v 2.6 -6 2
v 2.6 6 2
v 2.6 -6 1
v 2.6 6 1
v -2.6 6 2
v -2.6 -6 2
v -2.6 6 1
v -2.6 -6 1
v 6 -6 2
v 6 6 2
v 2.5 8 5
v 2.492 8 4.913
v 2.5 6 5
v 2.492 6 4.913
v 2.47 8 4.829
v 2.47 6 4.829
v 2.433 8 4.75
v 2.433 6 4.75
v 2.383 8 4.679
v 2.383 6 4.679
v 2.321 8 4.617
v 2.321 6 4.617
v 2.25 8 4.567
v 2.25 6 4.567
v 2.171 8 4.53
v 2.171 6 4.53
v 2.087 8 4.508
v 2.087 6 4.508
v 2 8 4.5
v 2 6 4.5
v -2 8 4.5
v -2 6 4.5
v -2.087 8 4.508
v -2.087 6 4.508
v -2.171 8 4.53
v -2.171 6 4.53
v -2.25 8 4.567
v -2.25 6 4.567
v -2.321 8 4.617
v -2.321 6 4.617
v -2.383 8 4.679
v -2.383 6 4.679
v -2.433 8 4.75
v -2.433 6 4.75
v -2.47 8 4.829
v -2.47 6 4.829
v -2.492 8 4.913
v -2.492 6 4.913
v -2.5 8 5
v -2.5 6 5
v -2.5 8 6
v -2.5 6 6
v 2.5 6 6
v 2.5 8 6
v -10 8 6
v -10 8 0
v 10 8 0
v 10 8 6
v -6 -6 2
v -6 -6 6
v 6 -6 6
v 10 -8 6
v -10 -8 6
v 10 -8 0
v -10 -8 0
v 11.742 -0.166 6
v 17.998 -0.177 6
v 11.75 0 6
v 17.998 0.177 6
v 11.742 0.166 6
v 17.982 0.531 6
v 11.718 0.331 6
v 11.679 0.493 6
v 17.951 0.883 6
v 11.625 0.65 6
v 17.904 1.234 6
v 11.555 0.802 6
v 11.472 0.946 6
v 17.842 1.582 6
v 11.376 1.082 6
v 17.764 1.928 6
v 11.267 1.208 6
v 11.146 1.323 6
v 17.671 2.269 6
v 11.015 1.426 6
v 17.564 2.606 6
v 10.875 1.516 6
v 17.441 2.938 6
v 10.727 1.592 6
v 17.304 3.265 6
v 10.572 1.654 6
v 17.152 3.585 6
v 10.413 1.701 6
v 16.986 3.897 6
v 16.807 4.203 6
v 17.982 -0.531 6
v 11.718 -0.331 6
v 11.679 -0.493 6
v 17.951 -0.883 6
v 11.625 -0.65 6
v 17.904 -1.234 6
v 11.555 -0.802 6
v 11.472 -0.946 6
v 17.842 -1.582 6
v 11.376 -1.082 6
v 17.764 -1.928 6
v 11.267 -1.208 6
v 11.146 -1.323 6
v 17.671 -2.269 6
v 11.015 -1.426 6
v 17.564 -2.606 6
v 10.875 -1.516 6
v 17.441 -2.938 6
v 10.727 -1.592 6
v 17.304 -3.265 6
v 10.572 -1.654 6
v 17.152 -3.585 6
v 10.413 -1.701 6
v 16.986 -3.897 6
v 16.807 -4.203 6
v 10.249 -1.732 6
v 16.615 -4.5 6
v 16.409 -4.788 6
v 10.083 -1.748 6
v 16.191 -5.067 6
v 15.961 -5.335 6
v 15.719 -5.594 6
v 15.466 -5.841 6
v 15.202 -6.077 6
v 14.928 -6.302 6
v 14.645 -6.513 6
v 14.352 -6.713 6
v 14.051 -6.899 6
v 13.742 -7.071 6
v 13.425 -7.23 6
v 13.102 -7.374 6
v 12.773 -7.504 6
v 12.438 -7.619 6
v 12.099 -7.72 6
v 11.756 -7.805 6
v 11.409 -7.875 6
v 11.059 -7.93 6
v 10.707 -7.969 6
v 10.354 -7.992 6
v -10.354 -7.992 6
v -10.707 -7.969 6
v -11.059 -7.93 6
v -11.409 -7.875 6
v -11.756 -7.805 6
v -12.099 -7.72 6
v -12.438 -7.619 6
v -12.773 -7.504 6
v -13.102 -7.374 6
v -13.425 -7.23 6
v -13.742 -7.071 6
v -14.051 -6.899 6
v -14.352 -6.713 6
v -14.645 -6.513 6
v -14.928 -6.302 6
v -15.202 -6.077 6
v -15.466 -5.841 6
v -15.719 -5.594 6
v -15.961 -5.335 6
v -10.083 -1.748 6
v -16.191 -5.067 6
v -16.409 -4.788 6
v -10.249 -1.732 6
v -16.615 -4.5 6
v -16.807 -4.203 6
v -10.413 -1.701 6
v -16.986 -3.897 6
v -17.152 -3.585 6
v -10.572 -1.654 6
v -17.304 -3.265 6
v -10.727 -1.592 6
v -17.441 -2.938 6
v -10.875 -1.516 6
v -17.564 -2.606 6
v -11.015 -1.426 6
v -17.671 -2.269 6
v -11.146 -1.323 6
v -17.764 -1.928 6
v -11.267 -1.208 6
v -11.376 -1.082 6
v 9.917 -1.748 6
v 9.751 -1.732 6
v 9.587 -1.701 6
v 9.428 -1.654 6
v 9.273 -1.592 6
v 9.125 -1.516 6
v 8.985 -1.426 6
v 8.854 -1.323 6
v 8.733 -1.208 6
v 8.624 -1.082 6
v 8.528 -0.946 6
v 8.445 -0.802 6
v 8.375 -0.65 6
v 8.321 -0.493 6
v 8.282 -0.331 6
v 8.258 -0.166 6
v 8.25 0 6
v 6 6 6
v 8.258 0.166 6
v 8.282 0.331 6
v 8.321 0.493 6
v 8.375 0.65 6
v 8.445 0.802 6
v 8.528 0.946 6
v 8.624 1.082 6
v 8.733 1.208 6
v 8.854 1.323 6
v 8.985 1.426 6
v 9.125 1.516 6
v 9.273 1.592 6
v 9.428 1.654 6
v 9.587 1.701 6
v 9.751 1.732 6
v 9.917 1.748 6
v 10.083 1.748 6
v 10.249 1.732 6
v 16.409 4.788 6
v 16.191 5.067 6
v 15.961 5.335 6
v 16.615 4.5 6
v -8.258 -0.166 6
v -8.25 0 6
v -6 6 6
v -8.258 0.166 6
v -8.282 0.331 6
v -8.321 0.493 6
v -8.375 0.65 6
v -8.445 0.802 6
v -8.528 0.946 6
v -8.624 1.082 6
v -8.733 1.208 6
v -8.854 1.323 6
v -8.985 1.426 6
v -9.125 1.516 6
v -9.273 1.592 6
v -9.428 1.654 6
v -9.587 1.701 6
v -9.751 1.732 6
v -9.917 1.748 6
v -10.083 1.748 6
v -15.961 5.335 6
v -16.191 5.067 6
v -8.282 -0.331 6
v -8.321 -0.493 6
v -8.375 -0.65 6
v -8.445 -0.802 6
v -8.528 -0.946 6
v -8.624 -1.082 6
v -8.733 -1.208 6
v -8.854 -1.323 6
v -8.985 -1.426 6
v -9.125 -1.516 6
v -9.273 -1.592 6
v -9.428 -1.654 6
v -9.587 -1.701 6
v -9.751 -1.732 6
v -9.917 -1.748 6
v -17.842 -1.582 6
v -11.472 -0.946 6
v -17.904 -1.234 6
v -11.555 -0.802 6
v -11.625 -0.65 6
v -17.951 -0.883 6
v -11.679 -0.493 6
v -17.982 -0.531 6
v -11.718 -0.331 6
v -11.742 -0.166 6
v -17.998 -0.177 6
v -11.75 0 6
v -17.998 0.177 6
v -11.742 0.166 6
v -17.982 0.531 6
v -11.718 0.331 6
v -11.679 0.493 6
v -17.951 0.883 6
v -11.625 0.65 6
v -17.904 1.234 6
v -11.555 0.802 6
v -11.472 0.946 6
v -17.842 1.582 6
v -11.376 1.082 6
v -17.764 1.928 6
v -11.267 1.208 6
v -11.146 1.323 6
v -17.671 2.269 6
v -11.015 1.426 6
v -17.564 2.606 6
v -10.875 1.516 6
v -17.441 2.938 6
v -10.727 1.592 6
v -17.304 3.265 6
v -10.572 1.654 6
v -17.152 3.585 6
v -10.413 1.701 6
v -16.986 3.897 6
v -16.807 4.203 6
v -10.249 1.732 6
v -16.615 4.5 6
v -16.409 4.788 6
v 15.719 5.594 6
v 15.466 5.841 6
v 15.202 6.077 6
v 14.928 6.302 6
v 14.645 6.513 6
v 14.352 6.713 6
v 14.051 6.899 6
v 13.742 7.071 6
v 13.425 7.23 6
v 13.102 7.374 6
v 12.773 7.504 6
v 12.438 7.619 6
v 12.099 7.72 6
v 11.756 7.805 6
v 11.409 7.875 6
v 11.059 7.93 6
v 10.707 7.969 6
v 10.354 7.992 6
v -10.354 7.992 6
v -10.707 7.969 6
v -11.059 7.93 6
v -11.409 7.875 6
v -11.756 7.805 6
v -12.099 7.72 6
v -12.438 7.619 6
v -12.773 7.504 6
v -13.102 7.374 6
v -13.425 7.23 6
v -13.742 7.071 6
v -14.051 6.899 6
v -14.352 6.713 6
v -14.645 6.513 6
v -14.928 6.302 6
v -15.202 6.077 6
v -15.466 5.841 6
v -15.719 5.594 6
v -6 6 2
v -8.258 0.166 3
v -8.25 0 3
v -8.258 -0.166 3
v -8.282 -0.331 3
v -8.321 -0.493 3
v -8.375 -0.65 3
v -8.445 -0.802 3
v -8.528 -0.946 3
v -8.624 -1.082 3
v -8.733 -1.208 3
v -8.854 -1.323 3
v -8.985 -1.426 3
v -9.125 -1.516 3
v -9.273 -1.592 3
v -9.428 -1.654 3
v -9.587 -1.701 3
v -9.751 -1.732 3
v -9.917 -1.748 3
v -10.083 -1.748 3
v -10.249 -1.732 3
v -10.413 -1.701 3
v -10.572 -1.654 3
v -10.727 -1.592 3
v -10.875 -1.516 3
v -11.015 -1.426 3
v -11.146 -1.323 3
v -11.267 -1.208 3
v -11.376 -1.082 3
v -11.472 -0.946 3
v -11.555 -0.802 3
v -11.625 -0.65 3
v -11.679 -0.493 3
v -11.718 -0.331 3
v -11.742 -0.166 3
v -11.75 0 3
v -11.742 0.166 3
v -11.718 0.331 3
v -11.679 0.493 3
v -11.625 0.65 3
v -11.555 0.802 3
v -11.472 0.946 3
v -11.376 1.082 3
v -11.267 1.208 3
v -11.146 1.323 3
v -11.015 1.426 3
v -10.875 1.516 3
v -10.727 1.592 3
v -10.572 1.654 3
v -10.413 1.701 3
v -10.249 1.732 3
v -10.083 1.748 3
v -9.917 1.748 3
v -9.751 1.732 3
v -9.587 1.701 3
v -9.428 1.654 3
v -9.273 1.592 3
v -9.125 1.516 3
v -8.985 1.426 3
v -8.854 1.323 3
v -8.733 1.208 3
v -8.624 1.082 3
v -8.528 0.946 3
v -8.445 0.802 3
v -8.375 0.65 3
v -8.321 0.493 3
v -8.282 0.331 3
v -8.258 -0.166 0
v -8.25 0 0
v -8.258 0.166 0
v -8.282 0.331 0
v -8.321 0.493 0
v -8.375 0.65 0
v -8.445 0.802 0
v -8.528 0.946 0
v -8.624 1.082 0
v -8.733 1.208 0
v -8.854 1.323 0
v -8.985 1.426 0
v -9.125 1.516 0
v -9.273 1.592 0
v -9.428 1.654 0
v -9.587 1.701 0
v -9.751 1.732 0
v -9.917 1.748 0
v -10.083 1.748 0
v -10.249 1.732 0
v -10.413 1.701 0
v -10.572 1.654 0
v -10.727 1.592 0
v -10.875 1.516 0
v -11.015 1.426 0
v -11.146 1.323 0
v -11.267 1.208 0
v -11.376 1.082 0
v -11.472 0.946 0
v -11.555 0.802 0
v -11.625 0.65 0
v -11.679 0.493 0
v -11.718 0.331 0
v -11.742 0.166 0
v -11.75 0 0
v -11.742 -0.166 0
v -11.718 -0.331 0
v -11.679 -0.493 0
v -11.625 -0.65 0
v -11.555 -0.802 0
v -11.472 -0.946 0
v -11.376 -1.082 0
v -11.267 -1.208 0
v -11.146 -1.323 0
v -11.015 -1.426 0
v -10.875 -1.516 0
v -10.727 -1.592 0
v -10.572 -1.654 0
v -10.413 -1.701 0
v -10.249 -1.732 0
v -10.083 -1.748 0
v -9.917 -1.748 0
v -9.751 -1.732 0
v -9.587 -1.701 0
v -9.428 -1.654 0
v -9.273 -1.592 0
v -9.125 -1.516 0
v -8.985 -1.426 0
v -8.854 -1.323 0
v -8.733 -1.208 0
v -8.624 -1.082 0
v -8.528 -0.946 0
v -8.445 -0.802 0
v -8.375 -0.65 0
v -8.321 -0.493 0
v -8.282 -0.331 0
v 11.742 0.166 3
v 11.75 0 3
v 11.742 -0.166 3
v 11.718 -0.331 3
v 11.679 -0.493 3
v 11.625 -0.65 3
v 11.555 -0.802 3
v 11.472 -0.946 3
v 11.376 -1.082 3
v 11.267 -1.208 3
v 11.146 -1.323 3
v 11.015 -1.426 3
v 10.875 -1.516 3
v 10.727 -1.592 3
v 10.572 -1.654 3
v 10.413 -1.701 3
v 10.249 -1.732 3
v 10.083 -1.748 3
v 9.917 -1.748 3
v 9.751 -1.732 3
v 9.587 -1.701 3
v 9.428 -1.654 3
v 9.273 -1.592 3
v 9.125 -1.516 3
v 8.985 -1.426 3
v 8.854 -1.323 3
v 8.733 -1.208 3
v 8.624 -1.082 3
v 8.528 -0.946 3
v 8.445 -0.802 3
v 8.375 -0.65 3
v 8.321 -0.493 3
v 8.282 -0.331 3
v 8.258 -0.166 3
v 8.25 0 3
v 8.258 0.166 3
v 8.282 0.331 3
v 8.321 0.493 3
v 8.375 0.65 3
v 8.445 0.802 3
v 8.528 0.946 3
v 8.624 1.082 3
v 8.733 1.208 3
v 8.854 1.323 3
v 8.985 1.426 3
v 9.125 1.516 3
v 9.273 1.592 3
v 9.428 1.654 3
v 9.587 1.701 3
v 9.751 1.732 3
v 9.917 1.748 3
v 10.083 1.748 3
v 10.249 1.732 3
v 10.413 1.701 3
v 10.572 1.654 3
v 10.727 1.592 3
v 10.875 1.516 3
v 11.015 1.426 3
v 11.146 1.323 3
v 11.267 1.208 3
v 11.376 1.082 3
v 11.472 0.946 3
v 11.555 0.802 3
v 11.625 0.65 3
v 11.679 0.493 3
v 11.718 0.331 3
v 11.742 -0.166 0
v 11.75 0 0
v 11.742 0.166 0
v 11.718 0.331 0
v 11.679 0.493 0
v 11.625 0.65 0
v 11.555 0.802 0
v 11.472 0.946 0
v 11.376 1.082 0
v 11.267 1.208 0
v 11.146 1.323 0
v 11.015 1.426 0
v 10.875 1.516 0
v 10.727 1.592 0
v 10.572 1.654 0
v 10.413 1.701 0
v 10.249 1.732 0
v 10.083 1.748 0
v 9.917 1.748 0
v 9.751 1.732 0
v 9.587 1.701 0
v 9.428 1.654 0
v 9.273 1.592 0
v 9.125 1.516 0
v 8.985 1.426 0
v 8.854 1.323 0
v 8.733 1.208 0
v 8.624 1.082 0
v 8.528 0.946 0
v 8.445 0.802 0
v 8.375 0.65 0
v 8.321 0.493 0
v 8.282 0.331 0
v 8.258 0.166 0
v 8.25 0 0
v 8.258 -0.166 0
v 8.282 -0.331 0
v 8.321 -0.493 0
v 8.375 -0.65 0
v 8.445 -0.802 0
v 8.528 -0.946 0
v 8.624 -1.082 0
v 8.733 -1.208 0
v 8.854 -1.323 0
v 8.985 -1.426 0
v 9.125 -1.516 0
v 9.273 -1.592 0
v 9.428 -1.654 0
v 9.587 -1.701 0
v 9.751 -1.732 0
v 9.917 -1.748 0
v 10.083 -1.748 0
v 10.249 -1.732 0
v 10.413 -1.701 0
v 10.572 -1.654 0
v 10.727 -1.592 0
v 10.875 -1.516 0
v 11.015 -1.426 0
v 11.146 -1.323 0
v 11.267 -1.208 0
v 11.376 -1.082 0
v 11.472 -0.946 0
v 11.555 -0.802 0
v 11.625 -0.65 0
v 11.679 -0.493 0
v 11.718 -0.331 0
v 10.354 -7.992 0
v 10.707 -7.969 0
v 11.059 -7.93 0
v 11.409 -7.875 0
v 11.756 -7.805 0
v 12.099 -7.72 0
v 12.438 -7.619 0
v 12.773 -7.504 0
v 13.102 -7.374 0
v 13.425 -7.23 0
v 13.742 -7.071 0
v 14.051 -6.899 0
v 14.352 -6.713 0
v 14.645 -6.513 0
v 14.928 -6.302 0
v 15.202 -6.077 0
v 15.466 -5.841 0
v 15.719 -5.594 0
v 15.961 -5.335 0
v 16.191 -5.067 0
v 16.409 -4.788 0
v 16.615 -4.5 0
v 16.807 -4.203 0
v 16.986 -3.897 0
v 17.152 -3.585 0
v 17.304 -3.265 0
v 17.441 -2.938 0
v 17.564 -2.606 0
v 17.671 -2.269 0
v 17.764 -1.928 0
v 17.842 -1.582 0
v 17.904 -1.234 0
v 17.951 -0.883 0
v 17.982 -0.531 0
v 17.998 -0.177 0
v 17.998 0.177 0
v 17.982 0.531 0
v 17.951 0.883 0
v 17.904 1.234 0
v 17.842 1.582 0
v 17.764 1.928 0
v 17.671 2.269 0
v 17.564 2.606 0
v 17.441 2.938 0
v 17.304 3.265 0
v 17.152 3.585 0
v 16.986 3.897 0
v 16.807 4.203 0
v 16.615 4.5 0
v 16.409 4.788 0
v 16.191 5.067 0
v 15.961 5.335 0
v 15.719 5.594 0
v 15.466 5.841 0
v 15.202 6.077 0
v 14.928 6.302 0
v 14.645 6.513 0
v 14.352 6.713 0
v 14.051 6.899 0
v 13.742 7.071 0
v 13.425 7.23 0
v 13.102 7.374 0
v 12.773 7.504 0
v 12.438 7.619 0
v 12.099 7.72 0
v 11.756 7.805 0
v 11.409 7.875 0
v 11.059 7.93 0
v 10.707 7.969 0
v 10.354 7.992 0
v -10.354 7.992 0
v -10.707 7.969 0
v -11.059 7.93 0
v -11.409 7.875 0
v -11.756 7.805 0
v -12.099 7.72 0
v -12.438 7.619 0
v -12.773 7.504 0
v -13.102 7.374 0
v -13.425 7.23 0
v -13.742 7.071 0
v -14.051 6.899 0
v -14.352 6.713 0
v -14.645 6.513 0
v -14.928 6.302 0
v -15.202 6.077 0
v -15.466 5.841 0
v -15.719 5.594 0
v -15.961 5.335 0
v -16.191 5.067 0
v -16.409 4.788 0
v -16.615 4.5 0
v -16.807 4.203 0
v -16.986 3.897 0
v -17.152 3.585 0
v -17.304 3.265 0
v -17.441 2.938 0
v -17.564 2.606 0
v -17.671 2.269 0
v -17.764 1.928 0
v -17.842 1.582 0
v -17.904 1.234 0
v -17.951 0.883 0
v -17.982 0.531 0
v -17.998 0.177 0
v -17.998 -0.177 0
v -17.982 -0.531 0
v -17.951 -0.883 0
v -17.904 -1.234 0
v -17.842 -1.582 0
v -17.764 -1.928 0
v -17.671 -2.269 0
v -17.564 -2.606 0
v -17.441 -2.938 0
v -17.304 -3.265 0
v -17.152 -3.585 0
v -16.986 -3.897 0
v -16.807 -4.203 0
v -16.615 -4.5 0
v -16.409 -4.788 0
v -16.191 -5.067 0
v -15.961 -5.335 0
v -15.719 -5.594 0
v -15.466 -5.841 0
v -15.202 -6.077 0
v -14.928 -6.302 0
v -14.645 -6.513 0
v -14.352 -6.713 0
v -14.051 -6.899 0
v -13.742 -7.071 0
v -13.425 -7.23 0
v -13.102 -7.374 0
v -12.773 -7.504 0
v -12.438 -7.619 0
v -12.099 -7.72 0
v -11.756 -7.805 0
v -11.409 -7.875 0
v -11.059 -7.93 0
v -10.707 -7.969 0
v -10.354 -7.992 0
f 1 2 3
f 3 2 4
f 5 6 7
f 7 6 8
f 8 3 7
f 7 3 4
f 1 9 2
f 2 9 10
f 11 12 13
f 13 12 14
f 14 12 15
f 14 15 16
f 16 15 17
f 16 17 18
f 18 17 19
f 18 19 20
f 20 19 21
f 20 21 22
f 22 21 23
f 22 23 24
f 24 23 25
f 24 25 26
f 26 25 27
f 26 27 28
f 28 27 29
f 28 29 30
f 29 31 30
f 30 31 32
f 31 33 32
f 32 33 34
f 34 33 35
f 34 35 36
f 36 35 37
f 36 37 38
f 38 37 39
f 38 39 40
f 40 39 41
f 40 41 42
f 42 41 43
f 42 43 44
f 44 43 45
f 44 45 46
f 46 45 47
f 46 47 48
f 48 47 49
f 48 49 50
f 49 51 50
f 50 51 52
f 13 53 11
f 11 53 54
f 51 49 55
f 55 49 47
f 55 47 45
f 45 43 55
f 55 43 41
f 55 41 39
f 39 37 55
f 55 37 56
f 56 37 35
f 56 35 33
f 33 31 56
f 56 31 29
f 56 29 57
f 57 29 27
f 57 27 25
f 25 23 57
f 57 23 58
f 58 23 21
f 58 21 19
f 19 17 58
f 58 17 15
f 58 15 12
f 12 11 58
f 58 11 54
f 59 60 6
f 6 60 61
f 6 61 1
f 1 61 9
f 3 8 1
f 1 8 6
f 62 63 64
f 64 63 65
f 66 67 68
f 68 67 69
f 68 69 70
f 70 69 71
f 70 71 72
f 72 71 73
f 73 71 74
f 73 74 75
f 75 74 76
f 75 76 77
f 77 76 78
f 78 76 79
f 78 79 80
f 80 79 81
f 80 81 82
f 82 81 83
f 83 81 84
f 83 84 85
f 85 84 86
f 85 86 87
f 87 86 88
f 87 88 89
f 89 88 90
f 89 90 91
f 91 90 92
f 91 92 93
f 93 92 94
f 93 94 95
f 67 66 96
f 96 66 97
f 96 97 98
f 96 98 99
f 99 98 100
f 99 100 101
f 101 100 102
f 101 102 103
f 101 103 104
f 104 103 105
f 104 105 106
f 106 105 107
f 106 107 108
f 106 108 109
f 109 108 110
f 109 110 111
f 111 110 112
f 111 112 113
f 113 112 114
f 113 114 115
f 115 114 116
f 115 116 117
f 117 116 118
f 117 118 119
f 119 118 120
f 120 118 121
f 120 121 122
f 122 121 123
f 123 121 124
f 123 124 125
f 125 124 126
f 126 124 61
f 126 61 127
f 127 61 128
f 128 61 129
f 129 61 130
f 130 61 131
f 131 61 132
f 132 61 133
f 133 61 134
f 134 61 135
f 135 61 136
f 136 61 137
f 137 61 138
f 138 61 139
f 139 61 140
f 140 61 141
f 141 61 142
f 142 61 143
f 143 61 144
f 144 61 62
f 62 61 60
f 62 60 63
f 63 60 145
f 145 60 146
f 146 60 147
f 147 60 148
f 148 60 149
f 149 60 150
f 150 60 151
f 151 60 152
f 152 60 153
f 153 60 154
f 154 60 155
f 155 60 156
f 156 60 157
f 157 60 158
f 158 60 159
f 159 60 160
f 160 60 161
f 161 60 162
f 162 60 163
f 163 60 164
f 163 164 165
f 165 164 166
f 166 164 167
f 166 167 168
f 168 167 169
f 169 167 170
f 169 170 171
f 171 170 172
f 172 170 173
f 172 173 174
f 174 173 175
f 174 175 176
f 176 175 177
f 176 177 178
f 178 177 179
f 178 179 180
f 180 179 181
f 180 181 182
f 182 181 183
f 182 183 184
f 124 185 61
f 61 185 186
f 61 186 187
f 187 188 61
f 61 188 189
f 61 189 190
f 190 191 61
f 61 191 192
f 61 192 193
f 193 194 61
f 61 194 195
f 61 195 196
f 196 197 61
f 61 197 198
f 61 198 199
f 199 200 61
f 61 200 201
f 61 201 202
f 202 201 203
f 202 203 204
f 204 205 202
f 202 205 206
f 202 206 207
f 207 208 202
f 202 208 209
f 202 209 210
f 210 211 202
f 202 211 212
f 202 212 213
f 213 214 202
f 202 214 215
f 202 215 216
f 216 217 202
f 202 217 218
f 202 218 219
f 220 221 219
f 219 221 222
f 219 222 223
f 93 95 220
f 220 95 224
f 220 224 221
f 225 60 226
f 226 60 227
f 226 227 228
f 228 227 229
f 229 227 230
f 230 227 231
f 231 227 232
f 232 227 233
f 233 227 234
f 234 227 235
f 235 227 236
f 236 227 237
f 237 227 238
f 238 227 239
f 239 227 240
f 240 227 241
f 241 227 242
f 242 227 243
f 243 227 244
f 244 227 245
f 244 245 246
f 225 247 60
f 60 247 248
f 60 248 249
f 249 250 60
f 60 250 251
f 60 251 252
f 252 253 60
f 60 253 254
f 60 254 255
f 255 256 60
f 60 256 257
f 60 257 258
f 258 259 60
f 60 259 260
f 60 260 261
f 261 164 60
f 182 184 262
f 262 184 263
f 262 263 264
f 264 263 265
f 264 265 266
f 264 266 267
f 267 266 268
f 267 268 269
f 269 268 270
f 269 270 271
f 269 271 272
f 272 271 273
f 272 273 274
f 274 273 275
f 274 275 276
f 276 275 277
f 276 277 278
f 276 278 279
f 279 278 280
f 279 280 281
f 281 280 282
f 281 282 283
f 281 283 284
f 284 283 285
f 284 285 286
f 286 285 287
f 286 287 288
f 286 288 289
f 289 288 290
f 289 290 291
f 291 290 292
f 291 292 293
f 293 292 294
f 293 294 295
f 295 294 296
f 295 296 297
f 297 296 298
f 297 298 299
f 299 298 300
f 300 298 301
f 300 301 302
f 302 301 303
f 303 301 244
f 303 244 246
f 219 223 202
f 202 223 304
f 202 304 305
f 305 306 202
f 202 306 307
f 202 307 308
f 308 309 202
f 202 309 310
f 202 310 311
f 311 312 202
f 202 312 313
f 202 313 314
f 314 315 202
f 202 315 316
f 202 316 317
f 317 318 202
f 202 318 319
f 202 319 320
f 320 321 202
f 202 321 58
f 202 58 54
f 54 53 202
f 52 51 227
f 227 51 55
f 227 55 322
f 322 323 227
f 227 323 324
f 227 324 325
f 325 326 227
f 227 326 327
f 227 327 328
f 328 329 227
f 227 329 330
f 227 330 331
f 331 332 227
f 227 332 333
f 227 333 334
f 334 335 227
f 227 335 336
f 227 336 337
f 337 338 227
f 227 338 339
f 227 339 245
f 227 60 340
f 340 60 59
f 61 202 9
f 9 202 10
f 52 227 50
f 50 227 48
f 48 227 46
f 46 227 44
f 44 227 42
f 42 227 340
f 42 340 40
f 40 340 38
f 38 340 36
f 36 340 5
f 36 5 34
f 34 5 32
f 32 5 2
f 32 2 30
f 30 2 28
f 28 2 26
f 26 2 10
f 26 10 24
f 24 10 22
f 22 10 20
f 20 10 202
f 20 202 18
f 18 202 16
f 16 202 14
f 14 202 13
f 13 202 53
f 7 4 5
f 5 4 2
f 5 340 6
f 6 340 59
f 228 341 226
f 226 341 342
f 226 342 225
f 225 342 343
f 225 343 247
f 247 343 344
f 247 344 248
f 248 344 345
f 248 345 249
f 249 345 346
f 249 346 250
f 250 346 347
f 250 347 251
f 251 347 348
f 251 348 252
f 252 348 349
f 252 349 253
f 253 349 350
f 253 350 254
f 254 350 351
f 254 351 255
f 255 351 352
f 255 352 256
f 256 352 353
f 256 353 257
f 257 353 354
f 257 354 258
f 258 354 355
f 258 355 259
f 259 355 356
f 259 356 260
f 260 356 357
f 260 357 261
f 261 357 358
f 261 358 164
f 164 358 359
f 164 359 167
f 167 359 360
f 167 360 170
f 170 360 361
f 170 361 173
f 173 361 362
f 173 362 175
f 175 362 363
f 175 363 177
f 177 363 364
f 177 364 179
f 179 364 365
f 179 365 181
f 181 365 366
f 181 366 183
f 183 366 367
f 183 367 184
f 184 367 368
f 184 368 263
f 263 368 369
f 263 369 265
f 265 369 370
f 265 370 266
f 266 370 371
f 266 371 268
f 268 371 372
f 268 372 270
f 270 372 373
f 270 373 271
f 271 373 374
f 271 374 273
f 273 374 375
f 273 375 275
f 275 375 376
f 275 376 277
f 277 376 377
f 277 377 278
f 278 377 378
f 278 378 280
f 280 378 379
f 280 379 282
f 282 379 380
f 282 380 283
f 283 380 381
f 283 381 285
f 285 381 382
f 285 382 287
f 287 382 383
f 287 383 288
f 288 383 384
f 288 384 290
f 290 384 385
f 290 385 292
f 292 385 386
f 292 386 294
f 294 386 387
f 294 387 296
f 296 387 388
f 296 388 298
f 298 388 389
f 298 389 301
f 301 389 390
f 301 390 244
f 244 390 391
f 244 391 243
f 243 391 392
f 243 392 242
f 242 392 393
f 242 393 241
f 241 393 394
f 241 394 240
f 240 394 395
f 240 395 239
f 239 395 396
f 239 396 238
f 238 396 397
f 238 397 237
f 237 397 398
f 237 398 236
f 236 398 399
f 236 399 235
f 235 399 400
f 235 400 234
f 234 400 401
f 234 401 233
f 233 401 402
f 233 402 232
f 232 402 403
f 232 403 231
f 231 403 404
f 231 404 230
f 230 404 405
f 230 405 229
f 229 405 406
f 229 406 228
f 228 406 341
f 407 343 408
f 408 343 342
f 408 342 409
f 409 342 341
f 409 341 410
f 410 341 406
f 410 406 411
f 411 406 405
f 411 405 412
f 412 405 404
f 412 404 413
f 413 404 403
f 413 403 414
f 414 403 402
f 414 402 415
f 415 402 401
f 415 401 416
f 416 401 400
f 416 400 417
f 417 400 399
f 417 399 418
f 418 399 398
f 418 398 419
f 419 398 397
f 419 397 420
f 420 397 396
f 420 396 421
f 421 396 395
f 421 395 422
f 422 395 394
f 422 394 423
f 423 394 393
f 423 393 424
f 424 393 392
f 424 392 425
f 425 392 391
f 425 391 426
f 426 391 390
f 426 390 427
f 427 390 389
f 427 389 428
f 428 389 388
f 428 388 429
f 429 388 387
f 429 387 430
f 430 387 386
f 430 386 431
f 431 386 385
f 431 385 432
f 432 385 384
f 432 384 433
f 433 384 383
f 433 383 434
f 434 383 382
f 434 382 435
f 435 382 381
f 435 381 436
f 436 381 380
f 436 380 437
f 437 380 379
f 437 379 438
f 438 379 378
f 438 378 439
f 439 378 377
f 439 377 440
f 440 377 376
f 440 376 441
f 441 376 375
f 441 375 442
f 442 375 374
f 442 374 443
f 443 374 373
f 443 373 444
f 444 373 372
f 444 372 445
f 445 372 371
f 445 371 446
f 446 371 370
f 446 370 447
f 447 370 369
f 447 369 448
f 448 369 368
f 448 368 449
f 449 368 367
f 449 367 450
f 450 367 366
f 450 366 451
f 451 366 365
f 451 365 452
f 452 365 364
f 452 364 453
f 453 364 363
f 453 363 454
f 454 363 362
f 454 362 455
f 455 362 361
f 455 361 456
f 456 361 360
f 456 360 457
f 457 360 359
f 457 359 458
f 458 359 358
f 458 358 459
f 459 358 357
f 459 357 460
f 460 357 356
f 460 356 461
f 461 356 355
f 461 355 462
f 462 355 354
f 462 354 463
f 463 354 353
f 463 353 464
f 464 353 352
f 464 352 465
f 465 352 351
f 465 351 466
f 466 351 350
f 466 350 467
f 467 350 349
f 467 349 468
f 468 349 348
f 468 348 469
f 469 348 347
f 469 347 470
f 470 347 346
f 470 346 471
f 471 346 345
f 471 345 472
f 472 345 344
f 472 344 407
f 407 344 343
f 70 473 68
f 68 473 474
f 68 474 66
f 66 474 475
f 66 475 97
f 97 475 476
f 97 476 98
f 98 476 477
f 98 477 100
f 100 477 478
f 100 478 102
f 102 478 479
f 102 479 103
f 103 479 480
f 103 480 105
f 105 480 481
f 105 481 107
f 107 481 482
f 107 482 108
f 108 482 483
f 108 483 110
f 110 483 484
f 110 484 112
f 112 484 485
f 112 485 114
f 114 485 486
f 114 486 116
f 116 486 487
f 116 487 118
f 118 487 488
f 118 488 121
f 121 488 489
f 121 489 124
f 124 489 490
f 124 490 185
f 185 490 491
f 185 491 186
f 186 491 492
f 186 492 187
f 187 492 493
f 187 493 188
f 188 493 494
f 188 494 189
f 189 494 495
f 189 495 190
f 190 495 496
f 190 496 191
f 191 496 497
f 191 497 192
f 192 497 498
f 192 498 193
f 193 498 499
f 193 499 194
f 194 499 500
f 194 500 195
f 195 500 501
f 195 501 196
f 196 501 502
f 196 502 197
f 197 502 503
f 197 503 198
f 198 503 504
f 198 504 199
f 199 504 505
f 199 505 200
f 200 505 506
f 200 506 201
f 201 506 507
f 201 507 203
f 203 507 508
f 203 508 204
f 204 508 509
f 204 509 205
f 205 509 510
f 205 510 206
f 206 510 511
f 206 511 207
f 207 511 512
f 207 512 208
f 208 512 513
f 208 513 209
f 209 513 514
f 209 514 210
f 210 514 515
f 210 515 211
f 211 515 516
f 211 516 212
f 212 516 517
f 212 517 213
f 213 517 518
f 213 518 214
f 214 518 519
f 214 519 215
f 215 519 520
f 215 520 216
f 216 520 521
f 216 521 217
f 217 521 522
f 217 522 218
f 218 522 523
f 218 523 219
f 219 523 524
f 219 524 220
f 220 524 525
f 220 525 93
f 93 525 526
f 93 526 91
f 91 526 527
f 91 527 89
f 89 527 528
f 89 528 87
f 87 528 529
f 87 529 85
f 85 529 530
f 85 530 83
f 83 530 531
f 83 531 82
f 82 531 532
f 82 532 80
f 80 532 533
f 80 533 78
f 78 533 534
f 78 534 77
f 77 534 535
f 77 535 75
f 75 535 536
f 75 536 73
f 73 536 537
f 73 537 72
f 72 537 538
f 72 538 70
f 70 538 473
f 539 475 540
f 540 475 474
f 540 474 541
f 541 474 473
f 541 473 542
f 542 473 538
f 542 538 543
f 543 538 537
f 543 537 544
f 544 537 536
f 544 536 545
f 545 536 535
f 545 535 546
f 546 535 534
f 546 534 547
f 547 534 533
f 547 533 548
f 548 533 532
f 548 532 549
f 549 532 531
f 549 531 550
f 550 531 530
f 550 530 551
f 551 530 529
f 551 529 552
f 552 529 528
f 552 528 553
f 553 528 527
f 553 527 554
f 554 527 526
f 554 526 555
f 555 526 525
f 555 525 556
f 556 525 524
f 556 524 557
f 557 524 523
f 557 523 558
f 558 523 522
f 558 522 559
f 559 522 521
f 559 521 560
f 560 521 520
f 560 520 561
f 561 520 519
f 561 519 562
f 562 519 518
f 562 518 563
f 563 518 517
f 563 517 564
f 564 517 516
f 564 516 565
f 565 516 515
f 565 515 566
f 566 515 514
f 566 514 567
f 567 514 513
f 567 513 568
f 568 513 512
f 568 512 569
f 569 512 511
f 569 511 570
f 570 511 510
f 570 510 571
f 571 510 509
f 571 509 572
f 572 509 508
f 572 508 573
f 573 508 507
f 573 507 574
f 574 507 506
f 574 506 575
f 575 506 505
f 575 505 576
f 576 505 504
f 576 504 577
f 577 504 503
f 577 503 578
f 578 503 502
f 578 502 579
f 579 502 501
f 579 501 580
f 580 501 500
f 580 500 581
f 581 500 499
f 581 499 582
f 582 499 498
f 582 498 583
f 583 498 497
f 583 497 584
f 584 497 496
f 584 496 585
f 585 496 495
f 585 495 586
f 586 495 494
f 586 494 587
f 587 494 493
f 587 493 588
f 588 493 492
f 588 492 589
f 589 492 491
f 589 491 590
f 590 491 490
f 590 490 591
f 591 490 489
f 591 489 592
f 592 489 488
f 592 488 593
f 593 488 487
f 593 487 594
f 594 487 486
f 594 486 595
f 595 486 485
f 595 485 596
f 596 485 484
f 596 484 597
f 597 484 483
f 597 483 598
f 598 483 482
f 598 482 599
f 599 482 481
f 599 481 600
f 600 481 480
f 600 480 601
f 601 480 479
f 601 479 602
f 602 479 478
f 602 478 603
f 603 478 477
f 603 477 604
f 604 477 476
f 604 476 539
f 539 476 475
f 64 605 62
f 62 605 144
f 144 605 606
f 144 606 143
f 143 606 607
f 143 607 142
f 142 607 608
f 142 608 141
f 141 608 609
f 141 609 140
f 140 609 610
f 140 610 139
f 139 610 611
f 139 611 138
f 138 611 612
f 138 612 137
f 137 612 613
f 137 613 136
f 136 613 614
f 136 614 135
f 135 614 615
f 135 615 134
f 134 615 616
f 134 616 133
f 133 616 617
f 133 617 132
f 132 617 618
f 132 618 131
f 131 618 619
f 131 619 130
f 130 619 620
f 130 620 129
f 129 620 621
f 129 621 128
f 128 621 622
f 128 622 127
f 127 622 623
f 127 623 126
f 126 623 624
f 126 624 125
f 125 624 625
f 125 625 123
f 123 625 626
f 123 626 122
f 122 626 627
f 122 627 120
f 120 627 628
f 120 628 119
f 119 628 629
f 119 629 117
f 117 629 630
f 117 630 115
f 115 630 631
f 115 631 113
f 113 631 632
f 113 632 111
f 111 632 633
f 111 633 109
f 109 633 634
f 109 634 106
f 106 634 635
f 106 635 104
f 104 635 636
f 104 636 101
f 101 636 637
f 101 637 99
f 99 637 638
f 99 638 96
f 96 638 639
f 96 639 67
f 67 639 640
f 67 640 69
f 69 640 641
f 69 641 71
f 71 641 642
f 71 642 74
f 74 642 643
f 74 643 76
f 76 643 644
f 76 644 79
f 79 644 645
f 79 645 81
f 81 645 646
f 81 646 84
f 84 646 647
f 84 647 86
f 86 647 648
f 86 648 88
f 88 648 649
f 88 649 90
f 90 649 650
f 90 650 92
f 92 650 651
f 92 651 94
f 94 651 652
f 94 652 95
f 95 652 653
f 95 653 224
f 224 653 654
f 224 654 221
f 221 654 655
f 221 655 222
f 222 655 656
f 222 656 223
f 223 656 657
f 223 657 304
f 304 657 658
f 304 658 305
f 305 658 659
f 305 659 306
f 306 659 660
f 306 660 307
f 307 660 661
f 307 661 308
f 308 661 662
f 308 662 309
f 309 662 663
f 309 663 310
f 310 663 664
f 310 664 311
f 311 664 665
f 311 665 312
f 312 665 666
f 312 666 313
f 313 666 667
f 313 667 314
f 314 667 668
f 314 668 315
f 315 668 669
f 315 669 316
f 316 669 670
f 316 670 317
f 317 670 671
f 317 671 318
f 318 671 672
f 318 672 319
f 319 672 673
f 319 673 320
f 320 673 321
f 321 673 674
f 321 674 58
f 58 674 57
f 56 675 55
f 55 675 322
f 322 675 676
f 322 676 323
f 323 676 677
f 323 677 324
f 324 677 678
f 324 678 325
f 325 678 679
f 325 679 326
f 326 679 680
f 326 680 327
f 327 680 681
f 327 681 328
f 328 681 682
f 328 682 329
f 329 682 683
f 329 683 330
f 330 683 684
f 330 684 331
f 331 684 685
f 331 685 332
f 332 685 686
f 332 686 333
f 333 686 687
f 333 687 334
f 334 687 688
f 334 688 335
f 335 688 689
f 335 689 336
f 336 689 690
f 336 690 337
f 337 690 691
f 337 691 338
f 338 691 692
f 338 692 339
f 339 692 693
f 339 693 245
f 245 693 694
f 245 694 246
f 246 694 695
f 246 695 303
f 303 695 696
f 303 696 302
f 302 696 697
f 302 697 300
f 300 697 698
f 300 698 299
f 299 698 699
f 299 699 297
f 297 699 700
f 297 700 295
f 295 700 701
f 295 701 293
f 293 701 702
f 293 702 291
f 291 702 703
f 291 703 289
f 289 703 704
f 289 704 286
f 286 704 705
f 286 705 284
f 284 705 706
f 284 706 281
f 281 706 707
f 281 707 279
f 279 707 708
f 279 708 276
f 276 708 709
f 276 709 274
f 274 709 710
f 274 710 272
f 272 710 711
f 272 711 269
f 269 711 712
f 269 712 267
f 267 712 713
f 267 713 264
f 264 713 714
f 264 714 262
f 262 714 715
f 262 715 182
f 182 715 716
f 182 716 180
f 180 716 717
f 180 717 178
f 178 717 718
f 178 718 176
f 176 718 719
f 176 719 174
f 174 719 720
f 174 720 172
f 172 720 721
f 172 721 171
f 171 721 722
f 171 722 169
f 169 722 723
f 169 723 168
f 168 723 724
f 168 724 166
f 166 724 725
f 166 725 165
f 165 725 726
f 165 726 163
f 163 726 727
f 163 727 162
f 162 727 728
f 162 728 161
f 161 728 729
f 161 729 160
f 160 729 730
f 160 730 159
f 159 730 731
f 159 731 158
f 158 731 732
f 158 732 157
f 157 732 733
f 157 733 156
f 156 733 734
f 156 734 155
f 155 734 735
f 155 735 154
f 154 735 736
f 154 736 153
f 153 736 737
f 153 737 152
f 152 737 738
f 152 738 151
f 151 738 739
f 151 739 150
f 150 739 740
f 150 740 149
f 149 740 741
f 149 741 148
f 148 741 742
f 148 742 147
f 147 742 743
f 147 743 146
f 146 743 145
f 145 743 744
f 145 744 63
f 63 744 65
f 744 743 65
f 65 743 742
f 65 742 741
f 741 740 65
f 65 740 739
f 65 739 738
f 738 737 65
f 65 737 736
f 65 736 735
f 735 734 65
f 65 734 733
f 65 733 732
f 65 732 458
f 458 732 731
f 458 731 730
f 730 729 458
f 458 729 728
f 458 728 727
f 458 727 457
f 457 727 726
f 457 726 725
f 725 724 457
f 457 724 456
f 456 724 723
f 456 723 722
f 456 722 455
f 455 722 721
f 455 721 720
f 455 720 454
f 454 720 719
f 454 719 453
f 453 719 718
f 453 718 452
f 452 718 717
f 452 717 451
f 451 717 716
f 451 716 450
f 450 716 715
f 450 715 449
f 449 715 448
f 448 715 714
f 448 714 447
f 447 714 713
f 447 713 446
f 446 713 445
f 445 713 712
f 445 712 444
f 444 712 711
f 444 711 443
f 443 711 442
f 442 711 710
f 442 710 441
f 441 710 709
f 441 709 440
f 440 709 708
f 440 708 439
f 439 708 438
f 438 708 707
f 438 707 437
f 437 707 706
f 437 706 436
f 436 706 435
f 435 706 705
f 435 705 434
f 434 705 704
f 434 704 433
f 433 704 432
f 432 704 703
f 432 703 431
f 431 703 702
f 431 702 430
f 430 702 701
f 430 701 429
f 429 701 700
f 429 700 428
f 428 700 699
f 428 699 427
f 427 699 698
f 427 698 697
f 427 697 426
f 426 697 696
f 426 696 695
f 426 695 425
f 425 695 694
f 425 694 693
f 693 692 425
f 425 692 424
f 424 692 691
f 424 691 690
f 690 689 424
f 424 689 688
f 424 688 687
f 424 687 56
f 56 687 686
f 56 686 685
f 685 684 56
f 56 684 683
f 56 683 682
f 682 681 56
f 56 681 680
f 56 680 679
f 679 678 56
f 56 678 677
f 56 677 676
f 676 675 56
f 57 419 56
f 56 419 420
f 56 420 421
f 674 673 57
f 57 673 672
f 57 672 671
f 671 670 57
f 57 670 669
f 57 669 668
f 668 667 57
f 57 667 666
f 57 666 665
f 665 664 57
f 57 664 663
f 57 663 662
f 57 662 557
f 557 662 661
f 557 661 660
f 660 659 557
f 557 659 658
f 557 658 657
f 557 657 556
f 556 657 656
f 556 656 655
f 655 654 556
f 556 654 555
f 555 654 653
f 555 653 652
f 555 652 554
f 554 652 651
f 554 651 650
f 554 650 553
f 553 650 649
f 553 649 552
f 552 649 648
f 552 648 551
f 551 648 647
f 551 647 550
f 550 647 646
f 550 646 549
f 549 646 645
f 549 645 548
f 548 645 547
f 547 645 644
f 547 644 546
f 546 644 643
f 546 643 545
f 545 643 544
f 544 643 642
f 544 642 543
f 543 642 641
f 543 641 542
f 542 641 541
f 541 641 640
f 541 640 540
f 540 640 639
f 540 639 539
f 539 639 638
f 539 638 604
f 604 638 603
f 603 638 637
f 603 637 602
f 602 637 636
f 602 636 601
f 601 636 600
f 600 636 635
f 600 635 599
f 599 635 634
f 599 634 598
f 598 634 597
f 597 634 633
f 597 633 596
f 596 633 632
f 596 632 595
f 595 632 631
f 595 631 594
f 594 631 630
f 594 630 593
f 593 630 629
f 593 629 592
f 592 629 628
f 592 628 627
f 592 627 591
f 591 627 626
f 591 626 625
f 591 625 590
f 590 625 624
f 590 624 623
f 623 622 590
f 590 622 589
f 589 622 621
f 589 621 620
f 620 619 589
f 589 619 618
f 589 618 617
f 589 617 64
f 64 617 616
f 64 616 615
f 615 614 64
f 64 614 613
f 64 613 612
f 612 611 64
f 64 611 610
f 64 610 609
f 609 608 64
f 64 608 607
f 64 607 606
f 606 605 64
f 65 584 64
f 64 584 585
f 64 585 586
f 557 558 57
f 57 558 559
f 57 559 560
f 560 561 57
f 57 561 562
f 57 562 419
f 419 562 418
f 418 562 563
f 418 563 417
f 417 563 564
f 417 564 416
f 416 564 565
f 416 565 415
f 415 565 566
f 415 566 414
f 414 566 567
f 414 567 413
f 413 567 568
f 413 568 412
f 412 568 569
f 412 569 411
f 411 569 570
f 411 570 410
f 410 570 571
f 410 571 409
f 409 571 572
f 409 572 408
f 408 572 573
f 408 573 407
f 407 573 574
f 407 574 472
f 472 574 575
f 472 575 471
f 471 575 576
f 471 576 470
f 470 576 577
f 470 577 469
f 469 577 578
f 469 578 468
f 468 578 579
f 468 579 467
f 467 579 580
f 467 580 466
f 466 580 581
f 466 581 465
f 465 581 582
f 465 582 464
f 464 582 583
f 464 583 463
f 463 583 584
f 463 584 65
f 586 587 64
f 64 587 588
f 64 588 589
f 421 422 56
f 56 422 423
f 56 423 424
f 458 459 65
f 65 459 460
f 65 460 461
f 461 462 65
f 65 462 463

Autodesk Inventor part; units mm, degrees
ref_plane "YZ Plane" through (0, 0, 0) normal (1, 0, 0) x (0, 1, 0)
ref_plane "XZ Plane" through (0, 0, 0) normal (0, 1, 0) x (-1, 0, 0)
ref_plane "XY Plane" through (0, 0, 0) normal (0, 0, 1) x (1, 0, 0)
sketch "Skizze1" plane through (0, 0, 0) normal (0, 0, 1) x (1, 0, 0)
  line L0 (10, 0) -> (-10, 0) construction
  line L1 (10, 8) -> (-10, 8)
  line L2 (-10, -8) -> (10, -8)
  arc A0 (10, -8) -> (10, 8) centre (10, 0) ccw
  arc A1 (-10, 8) -> (-10, -8) centre (-10, 0) ccw
  circle A2 centre (-10, 0) radius 1.75
  circle A3 centre (10, 0) radius 1.75
  point P0 (0, 0)
  dimension "d0" = 16
  dimension "d1" = 20
  dimension "d2" = 3.5
  dimension "d3" = 3.5
extrude "Extrusion1" add sketch "Skizze1" along normal blind 6
sketch "Skizze2" plane through (0, 0, 6) normal (0, 0, 1) x (1, 0, 0)
  line L0 (6, -6) -> (-6, -6)
  line L1 (-6, -6) -> (-6, 6)
  line L2 (-6, 6) -> (6, 6)
  line L3 (6, 6) -> (6, -6)
  line L4 (6, -6) -> (-6, 6) construction
  line L5 (-6, -6) -> (6, 6) construction
  point P0 (0, 0)
  dimension "d6" = 12
  dimension "d7" = 12
extrude "Extrusion2" cut sketch "Skizze2" against normal blind 4
sketch "Skizze3" plane through (-10, 8, 0) normal (0, 1, 0) x (1, 0, 0)
  line L0 (10, 1.2) -> (10, -7.2) projected
  line L1 (4, -6) -> (16, -6) projected
  line L2 (12.5, -4.5) -> (7.5, -4.5)
  line L3 (7.5, -4.5) -> (7.5, -6)
  line L4 (7.5, -6) -> (12.5, -6)
  line L5 (12.5, -6) -> (12.5, -4.5)
  line L6 (12.5, -4.5) -> (7.5, -6) construction
  line L7 (7.5, -4.5) -> (12.5, -6) construction
  point P0 (10, -5.25)
  dimension "d10" = 5
  dimension "d11" = 1.5
extrude "Extrusion3" cut sketch "Skizze3" against normal up to next
fillet "Rundung1" radius 0.5 2 edges at (-2.5, 7, 4.5) (2.5, 7, 4.5)
sketch "Skizze4" plane through (0, 0, 2) normal (0, 0, 1) x (1, 0, 0)
  line L0 (2.6, -6) -> (-2.6, -6)
  line L1 (-2.6, -6) -> (-2.6, 6)
  line L2 (-2.6, 6) -> (2.6, 6)
  line L3 (2.6, 6) -> (2.6, -6)
  line L4 (2.6, -6) -> (-2.6, 6) construction
  line L5 (-2.6, -6) -> (2.6, 6) construction
  line L6 (6, -6) -> (-6, -6) projected
  point P0 (0, 0)
  dimension "d15" = 5.2
extrude "Extrusion4" cut sketch "Skizze4" against normal blind 1
equation "\"d3\" = d2"
properties part number "LenkwinkelsensorAS5600"
